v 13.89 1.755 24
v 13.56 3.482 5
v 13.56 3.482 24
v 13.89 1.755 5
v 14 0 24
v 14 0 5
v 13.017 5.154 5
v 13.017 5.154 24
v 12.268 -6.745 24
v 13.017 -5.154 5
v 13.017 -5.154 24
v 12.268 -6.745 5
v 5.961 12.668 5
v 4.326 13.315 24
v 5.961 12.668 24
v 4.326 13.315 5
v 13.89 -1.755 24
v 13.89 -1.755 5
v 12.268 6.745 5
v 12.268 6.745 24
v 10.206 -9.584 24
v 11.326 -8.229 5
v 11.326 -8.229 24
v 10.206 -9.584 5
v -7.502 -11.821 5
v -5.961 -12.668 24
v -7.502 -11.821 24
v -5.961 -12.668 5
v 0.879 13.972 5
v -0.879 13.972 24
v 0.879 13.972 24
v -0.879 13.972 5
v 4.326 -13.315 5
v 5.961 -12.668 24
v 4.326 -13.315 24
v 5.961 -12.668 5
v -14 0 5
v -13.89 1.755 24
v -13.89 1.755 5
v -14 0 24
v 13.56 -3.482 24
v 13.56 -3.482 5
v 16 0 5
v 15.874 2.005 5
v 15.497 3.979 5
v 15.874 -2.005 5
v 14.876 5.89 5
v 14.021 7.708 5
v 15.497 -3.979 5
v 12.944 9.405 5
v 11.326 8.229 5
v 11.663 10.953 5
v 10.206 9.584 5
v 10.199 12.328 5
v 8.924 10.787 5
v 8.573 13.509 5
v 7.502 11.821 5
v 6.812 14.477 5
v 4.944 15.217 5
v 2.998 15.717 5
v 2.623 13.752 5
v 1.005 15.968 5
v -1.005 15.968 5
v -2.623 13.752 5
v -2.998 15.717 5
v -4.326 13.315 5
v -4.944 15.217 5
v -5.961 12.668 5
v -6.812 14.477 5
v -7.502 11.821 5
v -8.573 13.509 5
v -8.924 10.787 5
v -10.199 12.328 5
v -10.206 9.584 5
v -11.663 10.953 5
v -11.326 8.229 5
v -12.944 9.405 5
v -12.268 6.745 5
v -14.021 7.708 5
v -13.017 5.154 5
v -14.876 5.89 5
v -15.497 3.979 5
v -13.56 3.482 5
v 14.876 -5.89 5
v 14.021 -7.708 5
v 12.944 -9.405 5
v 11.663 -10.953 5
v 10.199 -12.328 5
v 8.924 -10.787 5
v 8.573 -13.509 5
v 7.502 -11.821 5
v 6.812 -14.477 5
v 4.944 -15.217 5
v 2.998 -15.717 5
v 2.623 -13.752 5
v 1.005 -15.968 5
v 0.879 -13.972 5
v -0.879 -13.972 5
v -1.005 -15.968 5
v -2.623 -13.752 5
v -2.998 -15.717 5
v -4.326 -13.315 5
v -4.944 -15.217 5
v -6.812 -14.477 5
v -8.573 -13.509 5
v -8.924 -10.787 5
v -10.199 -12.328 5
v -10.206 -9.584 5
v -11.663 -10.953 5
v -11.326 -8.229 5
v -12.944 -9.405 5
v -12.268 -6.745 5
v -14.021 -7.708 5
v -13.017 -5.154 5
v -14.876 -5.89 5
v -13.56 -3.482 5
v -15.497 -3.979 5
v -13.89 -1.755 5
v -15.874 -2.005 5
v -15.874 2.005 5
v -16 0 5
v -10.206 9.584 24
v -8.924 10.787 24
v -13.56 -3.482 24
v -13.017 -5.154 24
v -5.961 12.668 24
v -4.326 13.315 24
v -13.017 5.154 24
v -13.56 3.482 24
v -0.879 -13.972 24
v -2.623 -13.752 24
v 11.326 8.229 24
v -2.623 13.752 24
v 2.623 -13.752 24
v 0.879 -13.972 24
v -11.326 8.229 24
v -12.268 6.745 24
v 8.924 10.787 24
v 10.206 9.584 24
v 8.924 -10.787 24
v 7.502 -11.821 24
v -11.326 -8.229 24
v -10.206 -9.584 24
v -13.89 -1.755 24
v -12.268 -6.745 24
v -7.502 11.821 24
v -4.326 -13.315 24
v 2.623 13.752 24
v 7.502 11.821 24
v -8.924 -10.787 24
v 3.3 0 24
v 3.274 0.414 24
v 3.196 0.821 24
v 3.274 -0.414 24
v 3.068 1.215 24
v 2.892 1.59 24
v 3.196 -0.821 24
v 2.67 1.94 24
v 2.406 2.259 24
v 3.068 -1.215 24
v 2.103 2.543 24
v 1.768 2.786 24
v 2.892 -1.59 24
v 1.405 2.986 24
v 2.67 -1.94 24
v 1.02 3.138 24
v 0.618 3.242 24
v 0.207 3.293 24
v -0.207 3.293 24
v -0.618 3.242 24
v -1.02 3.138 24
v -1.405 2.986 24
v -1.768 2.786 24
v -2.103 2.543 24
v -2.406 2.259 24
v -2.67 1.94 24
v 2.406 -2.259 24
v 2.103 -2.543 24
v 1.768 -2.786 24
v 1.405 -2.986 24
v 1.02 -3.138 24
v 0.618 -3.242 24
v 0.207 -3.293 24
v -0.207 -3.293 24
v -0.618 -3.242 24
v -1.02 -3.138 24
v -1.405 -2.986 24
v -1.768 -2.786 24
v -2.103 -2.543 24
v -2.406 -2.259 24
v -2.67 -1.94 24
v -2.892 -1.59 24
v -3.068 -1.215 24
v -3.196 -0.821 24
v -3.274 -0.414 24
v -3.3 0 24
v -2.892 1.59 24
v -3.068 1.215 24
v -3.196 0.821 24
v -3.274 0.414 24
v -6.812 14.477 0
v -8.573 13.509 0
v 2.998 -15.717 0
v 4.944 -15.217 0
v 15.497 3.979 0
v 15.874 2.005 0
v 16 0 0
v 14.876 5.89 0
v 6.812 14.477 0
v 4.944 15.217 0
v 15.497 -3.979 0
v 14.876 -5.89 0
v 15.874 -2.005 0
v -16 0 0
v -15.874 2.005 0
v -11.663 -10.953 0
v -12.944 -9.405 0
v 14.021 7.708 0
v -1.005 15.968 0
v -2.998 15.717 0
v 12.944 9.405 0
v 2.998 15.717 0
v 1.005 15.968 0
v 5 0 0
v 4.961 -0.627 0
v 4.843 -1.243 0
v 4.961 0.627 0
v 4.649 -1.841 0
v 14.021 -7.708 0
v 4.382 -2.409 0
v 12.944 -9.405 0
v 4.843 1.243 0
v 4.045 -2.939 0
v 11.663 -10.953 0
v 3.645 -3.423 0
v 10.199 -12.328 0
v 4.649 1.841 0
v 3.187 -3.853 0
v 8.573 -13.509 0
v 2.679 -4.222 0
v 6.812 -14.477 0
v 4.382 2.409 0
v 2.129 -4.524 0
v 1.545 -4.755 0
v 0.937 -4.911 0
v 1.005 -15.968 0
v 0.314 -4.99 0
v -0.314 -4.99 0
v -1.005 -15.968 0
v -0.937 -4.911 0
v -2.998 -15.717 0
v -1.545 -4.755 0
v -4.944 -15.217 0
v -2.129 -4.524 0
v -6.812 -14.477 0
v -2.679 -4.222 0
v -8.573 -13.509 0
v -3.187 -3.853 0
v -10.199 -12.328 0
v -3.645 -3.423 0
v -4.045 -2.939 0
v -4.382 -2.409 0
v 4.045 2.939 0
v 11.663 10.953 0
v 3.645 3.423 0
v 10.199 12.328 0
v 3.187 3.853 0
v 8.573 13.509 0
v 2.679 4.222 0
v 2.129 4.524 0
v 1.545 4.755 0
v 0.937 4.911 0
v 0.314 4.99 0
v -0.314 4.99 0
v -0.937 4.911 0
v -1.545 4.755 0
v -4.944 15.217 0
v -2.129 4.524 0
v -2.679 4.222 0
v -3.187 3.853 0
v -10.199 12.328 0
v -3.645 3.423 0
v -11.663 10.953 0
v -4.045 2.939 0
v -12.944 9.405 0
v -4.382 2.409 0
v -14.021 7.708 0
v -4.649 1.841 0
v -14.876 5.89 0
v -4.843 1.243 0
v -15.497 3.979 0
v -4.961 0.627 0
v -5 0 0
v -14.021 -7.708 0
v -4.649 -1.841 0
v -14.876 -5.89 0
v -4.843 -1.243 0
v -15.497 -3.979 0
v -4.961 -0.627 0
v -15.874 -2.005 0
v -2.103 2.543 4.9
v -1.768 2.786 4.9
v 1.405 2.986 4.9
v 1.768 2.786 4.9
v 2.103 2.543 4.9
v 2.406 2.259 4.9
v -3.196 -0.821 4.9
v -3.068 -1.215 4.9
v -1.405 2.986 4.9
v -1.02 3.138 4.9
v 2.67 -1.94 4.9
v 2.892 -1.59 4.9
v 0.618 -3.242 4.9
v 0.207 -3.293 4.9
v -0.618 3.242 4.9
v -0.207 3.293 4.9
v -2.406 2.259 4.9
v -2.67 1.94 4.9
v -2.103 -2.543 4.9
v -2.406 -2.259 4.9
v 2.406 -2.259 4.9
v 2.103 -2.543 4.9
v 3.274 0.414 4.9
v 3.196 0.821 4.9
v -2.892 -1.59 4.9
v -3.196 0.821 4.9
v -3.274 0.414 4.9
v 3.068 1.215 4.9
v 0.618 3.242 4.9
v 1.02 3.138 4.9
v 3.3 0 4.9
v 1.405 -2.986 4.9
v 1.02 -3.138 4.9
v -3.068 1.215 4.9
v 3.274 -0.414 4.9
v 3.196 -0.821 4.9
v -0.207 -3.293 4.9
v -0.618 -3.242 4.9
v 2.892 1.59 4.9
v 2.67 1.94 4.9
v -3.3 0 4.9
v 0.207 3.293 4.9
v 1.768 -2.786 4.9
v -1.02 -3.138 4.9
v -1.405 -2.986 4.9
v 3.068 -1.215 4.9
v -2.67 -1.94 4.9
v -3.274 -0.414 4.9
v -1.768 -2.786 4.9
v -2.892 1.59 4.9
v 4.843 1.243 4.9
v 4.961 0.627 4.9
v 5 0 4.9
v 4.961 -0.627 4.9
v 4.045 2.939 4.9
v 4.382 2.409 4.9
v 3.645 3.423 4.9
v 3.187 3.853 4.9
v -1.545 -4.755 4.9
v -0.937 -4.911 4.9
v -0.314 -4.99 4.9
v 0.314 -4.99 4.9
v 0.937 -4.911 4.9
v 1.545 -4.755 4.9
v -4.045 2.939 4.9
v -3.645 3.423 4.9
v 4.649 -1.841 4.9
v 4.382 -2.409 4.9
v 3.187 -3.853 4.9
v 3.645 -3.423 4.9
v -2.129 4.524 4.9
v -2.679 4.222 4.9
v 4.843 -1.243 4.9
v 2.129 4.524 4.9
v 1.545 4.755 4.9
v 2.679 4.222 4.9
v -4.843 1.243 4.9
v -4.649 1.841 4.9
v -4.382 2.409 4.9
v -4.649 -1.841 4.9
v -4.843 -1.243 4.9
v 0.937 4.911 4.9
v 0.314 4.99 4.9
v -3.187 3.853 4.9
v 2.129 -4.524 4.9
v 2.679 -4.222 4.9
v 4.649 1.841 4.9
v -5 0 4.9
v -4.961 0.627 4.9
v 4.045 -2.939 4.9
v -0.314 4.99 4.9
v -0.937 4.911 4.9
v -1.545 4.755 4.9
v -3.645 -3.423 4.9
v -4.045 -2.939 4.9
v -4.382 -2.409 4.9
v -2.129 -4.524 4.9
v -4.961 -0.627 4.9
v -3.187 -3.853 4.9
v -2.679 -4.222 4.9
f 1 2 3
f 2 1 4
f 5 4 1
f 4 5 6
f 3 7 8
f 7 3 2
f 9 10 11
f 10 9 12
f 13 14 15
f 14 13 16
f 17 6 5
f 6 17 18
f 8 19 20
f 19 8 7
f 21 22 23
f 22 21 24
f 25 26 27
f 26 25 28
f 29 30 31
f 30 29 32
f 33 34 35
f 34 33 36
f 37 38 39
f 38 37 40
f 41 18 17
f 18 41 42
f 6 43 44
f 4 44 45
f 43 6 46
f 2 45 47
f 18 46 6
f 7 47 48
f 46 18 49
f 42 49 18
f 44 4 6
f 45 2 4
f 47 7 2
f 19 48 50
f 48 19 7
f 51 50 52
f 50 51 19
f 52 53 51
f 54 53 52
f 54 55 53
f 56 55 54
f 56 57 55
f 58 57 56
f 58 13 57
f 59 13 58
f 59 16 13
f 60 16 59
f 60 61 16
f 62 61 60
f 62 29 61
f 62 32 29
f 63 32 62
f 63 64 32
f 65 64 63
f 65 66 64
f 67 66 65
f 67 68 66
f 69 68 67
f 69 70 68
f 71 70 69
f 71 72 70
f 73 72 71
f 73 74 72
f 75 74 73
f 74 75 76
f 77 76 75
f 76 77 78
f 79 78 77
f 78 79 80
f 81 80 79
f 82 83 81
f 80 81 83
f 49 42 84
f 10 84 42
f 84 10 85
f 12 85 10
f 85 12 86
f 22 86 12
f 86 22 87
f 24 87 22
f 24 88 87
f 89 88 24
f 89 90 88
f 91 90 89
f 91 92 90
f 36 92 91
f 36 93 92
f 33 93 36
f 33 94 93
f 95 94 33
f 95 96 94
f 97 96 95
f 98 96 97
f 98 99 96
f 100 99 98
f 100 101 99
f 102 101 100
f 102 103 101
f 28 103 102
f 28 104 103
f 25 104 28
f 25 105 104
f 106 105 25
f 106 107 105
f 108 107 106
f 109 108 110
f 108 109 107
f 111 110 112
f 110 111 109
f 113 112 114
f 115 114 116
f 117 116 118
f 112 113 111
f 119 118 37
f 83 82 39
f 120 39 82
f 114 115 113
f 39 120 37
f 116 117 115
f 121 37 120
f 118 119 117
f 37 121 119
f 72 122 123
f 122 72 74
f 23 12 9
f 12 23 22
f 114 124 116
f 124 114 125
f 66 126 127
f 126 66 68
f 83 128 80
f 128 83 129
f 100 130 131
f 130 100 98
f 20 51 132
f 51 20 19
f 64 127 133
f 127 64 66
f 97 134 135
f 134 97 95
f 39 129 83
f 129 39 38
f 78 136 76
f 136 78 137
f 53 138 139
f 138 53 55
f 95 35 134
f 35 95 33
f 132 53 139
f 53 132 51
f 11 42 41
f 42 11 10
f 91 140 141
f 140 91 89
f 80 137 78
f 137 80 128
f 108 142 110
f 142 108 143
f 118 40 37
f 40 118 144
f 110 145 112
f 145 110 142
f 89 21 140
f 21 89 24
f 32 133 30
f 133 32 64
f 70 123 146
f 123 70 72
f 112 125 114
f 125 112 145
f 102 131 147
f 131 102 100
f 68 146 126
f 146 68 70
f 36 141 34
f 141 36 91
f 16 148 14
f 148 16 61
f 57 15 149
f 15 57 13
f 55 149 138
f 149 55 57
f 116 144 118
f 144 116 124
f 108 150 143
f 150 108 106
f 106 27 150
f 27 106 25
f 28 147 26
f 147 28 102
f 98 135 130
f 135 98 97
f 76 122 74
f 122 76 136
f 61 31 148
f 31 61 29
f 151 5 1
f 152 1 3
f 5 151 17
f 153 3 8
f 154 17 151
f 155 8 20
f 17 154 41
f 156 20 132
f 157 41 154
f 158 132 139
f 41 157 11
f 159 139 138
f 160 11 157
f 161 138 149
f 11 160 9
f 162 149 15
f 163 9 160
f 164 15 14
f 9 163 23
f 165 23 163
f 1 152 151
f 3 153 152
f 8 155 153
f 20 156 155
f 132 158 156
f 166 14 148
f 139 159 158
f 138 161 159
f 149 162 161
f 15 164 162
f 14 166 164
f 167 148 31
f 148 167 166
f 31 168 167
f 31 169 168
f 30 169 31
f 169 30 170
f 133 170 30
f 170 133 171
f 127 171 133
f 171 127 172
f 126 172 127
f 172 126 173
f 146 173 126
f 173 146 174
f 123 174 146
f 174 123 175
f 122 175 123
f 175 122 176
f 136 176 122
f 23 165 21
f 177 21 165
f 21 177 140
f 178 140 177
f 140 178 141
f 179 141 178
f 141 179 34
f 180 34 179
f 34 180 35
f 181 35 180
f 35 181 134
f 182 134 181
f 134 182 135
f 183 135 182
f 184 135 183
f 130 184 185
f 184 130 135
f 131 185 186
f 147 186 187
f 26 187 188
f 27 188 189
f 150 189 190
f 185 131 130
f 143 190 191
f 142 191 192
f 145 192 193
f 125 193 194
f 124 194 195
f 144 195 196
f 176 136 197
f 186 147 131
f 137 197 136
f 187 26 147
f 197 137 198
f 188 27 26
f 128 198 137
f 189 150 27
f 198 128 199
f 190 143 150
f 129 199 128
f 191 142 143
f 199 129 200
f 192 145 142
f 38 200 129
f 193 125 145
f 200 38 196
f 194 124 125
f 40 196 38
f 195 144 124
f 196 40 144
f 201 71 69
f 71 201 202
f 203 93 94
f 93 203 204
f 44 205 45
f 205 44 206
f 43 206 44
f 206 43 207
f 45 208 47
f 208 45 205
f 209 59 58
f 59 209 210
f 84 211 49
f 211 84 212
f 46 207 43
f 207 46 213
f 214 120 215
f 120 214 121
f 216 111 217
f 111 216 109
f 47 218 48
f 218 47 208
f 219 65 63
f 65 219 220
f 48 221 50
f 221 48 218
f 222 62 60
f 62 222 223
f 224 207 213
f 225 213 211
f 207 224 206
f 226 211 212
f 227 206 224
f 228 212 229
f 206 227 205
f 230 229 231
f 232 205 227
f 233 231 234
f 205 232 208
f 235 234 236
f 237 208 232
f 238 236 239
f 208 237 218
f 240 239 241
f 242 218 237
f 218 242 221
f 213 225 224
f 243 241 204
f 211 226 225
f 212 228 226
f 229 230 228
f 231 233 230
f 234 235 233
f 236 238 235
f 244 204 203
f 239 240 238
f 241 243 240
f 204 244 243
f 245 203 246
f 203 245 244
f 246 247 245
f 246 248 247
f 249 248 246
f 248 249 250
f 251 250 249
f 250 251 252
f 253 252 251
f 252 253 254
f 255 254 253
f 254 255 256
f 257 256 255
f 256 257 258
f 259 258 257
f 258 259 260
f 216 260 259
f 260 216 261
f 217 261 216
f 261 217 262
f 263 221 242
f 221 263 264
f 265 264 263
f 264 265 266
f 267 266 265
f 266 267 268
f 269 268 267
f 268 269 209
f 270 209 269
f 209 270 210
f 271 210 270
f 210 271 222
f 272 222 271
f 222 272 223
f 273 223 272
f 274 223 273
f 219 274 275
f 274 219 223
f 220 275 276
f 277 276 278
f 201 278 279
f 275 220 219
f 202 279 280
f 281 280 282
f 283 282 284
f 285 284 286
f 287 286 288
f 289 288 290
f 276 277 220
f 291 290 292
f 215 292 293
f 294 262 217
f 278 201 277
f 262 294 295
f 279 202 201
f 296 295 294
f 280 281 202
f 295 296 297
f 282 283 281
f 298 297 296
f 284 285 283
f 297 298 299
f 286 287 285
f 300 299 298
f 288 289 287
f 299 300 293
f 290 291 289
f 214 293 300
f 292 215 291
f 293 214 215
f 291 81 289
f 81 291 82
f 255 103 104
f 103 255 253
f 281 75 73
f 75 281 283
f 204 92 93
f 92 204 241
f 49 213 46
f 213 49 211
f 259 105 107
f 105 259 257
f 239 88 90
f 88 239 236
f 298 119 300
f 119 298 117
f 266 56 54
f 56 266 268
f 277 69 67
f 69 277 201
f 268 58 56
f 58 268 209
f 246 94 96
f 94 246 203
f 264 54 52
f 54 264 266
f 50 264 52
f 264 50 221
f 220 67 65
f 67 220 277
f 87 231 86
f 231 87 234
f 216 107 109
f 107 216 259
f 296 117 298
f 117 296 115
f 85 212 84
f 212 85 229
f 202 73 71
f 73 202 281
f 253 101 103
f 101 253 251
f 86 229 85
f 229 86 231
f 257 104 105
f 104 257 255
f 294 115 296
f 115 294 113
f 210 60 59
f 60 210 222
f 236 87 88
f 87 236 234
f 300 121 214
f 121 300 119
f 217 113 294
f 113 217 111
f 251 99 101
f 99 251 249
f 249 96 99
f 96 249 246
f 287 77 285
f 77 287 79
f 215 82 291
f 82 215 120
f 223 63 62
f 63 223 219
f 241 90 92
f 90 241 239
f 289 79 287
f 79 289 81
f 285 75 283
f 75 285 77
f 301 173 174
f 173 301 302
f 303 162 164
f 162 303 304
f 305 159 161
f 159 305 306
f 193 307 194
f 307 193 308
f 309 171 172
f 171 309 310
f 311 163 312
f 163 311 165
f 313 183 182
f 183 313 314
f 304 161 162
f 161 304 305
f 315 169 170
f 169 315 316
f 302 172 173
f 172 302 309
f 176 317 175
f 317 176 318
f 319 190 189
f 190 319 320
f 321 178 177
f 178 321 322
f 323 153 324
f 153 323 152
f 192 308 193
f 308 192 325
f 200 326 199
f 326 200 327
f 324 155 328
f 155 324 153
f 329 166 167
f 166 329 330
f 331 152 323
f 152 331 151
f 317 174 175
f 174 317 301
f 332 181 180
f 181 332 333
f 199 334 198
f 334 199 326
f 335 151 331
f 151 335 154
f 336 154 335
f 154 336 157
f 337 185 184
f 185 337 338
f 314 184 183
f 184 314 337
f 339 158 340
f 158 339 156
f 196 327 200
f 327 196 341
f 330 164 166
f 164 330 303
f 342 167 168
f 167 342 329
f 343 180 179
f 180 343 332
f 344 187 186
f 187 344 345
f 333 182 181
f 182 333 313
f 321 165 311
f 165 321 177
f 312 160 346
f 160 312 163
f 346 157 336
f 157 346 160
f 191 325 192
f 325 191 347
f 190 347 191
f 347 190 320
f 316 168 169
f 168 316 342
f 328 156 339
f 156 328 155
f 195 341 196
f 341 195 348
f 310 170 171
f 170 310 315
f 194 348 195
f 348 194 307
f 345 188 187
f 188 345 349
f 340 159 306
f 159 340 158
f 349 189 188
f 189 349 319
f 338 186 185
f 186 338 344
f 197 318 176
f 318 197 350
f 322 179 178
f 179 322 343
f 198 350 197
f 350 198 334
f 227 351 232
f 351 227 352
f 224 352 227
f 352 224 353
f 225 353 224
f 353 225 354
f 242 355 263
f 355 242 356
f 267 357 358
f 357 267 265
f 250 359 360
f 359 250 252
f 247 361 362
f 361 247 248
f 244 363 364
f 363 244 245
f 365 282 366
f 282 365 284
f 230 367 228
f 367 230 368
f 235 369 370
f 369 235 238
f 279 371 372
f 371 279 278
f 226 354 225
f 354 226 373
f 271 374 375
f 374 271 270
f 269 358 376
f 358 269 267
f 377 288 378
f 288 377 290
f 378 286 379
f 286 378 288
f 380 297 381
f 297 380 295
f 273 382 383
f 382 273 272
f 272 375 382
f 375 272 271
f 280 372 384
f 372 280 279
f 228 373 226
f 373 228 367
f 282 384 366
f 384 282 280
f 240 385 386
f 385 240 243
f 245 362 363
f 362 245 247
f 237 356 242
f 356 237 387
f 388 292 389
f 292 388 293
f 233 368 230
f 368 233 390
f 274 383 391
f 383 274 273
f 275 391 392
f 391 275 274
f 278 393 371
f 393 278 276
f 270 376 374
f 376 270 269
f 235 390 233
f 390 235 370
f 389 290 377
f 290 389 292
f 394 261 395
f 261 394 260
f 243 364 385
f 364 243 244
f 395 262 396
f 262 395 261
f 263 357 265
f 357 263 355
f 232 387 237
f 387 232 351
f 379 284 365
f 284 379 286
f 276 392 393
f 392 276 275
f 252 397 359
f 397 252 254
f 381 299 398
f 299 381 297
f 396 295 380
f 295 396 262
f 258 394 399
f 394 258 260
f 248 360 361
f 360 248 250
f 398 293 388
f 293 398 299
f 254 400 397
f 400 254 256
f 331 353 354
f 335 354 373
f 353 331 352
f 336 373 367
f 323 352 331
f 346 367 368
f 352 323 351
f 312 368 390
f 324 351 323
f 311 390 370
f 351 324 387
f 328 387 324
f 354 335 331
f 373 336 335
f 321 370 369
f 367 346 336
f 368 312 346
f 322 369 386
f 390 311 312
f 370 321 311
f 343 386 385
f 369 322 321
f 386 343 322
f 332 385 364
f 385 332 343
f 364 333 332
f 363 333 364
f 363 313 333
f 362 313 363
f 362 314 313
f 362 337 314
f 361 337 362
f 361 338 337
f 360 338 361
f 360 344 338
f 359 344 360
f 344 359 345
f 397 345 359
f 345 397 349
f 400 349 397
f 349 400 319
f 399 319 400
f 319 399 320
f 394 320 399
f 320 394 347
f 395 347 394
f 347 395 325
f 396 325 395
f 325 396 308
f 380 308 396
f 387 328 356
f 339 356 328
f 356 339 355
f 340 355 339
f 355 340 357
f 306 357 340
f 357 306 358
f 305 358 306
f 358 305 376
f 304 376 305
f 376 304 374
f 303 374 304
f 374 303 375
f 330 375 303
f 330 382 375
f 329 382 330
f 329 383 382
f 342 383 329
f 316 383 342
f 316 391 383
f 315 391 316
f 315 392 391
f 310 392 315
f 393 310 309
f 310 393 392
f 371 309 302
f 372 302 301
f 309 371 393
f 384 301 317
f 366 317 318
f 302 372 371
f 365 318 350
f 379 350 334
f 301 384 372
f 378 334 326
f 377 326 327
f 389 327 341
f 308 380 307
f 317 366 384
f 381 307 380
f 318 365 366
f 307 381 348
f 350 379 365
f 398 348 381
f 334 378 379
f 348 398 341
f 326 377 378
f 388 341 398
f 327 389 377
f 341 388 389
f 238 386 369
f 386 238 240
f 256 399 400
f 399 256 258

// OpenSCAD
// buttkicker mount for porsche seat

$fn=50;


BK_R = 14;
BK_HEIGHT = 38;

BASE_R = 16;

BOLT_R = 3.3;

BASE_HEIGHT = 5;

TRIM = 0.1;
TRIM2 = TRIM * 2;


// top

*difference() {
  union() {
    
    translate([0, 0, BASE_HEIGHT])
    cylinder(h = BK_HEIGHT / 2, r = BK_R);
    cylinder(h = BASE_HEIGHT, r = BASE_R);
  }
  translate([0, 0, -TRIM])
  cylinder(h = BK_HEIGHT + BASE_HEIGHT + TRIM2, r = BOLT_R);
}

// bottom
difference() {
  union() {
    
    translate([0, 0, BASE_HEIGHT])
    cylinder(h = BK_HEIGHT / 2, r = BK_R);
    cylinder(h = BASE_HEIGHT, r = BASE_R);
  }
  translate([0, 0, -TRIM])
  cylinder(h = BK_HEIGHT + BASE_HEIGHT + TRIM2, r = BOLT_R);
  translate([0, 0, -TRIM])
  cylinder(h = 5, r = 5);
}
